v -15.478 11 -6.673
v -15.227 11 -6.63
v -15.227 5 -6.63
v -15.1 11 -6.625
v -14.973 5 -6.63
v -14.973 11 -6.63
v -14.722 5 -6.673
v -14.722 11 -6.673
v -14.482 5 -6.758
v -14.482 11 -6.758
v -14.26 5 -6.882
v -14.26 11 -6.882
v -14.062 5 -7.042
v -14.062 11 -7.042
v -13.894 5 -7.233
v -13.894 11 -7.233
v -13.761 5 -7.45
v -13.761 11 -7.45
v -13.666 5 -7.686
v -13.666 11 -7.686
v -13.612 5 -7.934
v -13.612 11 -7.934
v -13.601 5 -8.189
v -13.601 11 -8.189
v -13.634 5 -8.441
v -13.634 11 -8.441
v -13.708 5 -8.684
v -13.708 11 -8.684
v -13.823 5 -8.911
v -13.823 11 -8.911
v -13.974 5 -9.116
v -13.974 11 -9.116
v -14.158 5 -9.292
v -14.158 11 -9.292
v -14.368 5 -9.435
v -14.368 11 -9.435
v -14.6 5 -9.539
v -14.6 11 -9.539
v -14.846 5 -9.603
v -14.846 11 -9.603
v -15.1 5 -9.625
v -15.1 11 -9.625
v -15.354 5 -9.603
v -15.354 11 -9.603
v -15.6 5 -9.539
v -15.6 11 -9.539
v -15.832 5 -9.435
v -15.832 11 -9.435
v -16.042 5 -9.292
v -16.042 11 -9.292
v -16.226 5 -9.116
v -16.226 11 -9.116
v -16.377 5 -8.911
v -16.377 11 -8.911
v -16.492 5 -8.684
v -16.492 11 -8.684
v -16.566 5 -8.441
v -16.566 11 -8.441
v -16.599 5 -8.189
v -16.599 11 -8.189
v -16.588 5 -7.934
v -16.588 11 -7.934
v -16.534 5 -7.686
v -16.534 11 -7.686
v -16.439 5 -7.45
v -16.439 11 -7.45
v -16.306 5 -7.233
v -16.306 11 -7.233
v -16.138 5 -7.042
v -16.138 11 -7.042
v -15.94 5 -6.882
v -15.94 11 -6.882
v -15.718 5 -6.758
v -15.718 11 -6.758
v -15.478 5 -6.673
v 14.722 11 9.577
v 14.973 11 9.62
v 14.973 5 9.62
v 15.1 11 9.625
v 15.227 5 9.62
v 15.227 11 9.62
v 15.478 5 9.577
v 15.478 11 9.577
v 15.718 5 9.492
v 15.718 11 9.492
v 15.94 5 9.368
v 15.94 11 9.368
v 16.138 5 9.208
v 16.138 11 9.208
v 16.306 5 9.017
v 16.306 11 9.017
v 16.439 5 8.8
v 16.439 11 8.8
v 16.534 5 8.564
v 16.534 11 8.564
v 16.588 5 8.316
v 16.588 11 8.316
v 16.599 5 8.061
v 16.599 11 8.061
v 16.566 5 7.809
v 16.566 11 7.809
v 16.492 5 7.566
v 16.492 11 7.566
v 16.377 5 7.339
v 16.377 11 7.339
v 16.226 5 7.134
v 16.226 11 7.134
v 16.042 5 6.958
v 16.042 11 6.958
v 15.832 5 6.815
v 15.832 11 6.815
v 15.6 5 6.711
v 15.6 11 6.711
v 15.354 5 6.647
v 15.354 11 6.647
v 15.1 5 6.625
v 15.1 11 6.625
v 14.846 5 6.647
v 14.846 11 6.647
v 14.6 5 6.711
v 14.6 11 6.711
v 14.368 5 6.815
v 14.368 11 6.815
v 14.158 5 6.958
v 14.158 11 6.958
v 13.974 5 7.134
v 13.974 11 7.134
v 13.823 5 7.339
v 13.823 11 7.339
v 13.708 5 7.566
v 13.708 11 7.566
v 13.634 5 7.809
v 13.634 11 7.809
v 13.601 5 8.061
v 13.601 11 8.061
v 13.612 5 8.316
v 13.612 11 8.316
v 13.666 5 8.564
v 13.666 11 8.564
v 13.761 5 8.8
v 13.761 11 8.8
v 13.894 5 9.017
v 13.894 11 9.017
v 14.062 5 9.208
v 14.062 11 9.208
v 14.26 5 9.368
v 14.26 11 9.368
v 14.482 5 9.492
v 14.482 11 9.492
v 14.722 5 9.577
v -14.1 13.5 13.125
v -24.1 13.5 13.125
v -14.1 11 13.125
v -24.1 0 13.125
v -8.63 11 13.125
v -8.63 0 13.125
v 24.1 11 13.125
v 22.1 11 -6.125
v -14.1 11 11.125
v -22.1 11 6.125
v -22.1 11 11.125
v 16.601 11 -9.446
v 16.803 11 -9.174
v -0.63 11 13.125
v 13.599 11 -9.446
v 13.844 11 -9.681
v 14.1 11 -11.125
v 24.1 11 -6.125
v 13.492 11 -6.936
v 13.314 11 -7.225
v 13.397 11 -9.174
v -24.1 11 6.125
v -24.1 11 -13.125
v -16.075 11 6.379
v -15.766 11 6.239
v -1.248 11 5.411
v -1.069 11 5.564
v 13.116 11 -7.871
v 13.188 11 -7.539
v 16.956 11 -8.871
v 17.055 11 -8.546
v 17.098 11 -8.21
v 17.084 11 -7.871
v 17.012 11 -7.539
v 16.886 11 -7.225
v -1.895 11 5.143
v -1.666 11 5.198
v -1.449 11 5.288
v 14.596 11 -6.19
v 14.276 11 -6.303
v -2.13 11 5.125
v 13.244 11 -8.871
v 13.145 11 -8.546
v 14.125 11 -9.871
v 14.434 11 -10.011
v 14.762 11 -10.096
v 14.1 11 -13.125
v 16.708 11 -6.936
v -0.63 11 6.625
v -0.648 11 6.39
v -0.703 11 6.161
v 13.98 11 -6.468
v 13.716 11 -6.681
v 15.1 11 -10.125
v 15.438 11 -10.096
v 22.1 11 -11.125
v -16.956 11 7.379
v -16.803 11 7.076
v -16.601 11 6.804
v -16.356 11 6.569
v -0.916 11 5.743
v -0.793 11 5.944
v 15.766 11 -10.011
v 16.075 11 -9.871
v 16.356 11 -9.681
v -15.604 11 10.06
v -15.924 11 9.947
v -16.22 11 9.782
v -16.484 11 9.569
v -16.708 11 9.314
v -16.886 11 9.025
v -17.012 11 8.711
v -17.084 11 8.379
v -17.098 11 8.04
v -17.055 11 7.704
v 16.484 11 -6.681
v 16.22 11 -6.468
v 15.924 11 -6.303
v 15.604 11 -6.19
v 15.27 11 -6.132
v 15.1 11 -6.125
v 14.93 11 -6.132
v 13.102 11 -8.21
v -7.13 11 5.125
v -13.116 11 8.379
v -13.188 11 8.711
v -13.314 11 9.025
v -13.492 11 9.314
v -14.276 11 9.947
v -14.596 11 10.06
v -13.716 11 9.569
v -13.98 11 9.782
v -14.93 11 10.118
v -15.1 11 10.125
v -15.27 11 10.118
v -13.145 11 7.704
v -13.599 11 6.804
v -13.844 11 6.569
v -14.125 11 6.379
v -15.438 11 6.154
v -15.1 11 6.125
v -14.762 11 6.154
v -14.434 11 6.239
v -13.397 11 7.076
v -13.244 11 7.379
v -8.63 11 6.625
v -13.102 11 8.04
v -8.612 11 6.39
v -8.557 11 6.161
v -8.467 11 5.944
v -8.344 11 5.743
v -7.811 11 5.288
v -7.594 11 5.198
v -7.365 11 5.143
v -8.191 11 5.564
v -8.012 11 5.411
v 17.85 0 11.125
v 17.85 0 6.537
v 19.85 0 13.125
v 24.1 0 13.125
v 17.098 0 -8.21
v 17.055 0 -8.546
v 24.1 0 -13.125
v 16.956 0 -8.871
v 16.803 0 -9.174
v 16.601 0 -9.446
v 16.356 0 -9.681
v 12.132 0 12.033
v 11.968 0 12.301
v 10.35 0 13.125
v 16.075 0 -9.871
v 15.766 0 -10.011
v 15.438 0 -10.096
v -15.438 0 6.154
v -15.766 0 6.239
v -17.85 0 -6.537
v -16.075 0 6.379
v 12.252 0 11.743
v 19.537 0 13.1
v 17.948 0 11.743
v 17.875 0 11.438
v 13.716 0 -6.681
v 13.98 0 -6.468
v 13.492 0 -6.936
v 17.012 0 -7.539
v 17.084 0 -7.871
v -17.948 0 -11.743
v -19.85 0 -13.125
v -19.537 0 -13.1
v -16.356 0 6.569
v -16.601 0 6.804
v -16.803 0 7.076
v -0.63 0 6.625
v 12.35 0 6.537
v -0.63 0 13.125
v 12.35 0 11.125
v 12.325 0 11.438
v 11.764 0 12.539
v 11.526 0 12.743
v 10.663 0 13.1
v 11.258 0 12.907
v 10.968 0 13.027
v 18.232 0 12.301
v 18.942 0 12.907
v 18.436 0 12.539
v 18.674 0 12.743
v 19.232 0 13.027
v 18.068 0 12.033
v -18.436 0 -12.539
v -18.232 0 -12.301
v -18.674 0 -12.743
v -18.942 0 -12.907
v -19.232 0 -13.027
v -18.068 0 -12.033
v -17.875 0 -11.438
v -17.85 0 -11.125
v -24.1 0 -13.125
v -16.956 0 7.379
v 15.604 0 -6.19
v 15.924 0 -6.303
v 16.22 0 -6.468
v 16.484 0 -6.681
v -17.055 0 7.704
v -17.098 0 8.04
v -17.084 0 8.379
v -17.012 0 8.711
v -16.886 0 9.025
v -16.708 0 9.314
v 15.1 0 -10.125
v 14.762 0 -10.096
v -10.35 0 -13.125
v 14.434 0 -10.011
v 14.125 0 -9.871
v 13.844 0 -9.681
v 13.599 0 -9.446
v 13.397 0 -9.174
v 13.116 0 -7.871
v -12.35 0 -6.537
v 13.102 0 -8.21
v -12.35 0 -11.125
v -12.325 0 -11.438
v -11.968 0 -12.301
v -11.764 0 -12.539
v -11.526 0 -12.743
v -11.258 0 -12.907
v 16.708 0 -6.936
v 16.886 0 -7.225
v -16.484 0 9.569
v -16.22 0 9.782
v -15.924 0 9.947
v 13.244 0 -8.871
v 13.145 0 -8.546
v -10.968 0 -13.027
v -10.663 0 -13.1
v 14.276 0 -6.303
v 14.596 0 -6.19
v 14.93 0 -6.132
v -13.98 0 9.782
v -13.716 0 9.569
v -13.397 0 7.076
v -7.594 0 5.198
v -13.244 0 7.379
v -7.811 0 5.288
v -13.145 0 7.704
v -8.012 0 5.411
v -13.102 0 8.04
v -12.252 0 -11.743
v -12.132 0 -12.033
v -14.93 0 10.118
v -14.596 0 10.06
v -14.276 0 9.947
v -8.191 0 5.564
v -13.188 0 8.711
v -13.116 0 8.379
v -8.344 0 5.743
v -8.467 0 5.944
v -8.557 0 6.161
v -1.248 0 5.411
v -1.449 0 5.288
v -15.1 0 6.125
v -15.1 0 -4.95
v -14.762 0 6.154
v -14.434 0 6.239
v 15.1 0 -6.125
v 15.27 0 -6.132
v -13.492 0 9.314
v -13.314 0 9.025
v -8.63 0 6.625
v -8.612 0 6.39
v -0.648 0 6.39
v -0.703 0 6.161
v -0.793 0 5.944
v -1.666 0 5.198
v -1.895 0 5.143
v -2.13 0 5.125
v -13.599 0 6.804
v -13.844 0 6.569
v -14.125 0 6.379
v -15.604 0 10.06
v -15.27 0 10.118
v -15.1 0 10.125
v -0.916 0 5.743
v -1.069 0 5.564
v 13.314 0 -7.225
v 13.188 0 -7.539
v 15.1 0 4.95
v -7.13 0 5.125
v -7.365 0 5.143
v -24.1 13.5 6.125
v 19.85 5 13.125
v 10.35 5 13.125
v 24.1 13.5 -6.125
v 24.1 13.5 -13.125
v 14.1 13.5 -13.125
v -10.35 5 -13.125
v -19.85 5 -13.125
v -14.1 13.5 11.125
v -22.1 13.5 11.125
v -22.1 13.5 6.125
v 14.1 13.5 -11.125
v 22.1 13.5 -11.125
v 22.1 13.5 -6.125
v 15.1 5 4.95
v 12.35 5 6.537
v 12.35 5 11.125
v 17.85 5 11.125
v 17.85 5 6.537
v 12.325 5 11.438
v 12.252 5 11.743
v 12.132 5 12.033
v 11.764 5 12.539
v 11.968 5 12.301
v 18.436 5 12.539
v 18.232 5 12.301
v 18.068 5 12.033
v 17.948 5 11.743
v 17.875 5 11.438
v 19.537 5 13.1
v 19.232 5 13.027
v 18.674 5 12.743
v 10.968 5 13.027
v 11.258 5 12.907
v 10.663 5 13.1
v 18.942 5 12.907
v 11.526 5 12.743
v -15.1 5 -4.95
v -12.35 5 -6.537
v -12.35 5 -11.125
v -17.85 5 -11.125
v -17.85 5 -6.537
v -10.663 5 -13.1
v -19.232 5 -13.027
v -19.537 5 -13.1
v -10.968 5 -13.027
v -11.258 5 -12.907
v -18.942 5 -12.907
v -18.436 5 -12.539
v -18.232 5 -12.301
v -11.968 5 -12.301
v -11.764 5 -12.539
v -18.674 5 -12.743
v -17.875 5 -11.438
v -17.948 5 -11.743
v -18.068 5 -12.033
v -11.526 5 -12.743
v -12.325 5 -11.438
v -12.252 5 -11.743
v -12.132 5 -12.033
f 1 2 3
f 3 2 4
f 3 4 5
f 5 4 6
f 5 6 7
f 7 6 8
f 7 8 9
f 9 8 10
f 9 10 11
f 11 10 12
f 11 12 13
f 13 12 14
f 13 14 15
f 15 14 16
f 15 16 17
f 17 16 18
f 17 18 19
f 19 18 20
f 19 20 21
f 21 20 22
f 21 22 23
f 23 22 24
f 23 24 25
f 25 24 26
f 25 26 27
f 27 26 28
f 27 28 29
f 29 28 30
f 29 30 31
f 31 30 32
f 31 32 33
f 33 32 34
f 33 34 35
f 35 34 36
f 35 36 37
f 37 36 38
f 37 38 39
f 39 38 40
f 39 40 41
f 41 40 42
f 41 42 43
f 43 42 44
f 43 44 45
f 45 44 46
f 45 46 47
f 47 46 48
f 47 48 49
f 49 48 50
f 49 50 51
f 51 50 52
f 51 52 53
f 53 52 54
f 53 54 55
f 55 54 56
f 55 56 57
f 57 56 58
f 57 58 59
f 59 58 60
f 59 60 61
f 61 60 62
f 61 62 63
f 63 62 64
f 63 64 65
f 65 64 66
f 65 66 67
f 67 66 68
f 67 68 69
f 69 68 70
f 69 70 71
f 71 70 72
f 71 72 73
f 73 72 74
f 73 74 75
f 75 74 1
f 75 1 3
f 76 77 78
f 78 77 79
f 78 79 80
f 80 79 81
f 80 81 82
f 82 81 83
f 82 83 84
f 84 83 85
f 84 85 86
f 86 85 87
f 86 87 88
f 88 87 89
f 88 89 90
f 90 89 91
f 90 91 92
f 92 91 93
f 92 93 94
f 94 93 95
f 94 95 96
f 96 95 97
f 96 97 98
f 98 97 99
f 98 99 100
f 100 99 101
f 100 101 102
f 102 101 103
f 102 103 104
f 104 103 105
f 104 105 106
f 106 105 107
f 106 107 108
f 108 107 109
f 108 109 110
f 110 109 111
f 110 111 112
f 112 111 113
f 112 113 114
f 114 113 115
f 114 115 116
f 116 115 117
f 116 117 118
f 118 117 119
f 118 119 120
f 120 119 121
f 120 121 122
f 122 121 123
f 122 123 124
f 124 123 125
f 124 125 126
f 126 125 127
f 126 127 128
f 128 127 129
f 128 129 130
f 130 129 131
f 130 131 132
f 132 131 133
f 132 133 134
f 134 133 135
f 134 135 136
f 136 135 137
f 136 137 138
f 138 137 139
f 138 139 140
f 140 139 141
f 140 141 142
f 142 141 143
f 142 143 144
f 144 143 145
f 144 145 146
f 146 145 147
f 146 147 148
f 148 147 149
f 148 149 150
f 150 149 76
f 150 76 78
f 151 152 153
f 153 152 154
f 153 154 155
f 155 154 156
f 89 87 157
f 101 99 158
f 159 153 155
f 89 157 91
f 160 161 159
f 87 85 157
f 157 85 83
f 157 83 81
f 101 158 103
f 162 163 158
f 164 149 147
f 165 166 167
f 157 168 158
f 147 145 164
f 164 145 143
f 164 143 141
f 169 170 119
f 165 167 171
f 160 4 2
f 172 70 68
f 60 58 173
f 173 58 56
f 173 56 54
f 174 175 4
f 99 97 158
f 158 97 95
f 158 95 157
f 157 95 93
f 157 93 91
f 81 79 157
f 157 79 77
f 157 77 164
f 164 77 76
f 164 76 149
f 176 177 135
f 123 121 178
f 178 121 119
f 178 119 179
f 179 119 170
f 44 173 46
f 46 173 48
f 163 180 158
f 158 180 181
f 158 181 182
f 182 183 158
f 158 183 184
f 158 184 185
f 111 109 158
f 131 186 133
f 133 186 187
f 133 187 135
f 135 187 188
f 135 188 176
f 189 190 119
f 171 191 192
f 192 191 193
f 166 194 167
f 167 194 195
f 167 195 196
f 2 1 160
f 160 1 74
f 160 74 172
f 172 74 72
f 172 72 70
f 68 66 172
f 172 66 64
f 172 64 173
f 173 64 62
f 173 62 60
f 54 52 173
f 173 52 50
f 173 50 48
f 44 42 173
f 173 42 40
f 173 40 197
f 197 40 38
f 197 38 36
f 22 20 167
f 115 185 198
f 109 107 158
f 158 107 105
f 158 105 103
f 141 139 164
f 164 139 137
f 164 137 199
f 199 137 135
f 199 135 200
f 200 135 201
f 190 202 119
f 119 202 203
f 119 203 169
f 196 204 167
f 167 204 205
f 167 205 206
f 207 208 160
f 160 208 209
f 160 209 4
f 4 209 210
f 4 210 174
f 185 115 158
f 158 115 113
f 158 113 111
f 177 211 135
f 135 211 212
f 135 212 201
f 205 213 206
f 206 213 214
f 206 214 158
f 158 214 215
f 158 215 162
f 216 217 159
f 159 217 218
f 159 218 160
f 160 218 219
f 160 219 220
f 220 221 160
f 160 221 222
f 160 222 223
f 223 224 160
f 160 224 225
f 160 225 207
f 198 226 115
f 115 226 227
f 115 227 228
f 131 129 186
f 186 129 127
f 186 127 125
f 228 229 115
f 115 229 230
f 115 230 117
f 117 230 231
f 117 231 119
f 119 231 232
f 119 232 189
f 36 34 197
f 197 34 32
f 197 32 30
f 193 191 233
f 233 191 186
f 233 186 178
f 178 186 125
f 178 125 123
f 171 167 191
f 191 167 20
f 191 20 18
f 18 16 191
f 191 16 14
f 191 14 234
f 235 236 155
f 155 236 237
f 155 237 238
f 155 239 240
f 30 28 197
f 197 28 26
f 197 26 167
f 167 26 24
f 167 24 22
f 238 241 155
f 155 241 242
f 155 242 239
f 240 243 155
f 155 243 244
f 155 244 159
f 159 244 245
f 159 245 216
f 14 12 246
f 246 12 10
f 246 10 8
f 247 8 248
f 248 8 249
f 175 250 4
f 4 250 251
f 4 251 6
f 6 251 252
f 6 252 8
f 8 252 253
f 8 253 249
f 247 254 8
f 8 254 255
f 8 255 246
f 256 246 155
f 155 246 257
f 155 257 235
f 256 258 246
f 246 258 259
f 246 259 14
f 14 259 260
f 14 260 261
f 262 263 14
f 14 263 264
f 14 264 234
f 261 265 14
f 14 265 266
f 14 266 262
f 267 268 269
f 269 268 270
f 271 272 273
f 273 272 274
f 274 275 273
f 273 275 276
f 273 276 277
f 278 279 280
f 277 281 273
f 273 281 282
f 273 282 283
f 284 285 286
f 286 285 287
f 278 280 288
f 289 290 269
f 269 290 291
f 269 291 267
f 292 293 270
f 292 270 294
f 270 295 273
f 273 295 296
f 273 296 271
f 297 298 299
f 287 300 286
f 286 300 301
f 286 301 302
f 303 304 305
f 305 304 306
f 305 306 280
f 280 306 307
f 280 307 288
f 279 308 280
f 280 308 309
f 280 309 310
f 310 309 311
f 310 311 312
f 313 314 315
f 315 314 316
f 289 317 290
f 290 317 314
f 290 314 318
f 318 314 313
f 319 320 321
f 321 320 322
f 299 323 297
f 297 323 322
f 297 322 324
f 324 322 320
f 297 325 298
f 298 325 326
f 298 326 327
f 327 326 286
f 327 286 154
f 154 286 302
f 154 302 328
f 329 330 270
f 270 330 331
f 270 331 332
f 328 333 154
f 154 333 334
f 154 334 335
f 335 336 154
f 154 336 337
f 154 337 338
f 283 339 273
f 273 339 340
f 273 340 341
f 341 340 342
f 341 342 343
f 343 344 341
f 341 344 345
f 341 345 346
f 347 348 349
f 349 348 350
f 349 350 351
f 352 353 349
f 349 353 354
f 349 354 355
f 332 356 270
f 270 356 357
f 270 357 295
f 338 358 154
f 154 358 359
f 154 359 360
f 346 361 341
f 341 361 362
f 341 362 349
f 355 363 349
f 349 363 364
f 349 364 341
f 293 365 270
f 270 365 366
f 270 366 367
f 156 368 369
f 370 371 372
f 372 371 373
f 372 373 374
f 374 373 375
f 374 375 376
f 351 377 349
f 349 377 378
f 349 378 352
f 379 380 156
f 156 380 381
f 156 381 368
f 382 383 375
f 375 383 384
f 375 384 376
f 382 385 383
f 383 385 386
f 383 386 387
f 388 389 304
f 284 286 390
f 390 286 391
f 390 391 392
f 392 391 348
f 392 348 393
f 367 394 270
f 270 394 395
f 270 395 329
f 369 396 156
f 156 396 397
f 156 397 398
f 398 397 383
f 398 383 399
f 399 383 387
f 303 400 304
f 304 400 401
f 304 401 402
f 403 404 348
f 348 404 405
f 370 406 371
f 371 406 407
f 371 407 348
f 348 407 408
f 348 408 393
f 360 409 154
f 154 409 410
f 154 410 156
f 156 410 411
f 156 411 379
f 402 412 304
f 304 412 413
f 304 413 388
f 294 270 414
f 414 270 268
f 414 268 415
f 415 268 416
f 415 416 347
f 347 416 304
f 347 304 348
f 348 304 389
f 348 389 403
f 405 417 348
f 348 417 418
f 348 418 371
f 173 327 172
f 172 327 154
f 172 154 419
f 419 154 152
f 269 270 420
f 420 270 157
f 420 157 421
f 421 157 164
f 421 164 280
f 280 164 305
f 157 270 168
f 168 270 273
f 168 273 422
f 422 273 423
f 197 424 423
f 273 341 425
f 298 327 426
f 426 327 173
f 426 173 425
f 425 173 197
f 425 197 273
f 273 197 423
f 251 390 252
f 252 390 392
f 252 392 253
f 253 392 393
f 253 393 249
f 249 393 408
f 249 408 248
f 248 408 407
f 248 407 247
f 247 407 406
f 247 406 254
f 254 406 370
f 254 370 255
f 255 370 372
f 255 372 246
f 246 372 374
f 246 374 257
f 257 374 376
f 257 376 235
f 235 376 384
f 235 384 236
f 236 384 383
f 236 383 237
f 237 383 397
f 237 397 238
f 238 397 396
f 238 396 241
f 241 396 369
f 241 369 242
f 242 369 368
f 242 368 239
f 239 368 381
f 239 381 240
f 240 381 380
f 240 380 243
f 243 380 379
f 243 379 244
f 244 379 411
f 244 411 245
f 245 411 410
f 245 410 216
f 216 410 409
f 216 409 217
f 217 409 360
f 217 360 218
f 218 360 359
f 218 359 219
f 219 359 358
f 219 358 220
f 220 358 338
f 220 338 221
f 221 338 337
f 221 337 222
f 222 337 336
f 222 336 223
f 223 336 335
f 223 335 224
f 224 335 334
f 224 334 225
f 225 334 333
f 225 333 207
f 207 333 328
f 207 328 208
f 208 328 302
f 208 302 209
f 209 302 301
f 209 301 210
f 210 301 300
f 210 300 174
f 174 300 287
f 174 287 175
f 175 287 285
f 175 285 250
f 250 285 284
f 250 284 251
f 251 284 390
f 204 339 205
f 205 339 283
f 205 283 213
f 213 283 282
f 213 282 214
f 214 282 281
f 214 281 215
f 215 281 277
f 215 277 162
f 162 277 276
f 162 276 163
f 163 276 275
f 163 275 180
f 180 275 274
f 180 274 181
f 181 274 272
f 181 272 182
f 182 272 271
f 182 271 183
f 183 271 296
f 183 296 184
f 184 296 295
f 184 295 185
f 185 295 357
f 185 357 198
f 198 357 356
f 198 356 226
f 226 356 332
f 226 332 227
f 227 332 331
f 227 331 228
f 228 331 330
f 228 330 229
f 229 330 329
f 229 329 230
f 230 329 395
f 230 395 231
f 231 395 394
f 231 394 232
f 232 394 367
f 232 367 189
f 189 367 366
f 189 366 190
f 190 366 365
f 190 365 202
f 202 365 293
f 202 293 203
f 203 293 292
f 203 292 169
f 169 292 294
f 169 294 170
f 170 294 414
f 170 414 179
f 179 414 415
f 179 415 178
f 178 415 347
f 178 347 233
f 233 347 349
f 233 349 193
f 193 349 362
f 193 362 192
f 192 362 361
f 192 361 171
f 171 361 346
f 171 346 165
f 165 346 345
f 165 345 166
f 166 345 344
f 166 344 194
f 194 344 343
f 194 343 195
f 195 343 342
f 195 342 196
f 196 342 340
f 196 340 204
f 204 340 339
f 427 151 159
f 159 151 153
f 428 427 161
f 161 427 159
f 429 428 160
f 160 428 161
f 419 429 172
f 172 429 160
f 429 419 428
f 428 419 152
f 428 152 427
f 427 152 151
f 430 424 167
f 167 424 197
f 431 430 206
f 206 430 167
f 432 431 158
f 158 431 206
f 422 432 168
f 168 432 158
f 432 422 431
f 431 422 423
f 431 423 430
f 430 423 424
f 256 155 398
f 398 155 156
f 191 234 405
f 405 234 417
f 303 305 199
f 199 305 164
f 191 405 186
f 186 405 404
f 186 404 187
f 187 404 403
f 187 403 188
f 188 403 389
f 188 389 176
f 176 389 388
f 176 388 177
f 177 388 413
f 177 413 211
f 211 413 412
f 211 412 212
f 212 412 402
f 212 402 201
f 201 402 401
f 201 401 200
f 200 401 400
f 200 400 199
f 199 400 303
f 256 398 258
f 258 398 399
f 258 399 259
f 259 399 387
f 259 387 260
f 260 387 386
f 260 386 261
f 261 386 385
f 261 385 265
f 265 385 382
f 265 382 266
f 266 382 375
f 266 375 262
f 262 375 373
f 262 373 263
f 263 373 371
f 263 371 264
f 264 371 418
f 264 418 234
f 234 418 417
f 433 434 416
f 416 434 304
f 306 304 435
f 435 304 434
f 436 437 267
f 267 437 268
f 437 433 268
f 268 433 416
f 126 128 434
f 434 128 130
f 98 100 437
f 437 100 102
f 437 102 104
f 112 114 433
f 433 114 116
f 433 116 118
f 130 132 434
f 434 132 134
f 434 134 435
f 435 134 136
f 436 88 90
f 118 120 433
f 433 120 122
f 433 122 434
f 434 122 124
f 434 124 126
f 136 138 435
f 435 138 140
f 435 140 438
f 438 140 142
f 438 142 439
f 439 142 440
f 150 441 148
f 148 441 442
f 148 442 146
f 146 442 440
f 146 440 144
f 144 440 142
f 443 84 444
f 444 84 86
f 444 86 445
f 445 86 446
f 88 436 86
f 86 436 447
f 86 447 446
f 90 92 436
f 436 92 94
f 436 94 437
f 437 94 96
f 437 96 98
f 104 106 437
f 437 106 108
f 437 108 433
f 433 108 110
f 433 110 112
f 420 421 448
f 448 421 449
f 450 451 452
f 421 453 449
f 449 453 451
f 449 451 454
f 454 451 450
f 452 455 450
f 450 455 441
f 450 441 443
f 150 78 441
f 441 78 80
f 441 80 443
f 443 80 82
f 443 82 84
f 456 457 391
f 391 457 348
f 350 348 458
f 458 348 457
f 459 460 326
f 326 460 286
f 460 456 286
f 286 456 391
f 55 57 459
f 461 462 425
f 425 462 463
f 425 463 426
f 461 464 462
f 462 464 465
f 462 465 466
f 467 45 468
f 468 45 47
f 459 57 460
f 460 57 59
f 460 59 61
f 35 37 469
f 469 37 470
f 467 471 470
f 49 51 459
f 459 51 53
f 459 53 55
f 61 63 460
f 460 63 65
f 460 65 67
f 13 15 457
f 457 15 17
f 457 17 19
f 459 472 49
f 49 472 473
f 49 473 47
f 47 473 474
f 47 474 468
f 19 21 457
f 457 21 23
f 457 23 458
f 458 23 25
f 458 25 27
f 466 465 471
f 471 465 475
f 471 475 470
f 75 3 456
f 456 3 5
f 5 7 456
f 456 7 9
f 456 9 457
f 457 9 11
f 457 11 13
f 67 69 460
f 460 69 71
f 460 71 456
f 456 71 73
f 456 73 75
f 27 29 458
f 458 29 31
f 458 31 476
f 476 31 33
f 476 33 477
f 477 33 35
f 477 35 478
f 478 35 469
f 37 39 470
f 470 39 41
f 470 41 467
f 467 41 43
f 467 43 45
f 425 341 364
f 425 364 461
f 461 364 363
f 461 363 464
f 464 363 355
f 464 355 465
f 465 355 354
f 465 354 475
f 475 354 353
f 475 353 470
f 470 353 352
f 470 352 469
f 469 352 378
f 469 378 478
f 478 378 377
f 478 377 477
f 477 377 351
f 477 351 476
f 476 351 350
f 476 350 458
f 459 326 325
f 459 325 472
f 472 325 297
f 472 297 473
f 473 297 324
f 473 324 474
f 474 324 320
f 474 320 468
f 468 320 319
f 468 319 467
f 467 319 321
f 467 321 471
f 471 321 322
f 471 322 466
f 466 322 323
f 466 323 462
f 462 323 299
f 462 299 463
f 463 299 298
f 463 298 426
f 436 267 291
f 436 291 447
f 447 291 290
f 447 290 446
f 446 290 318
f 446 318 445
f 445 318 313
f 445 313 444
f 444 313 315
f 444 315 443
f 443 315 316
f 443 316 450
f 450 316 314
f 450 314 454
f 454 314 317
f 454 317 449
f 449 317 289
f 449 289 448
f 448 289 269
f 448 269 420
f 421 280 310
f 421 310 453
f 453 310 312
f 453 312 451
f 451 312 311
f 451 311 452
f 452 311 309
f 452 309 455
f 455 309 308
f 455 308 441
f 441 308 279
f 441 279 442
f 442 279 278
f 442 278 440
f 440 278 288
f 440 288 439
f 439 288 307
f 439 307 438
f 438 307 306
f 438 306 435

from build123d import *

# Parameters (mm, degrees)
SKETCH1_W           = 48.2
SKETCH1_H           = 26.25
SKETCH1_R           = 1.5
SKETCH1_R_2         = 2
BOSS_EXTRUDE1_DEPTH = 11
BOSS_EXTRUDE2_DEPTH = 2.5
SKETCH3_W           = 8
SKETCH3_H           = 8
CUT_EXTRUDE1_DEPTH  = 30.564769997
FILLET1_R           = 1.5
CUT_EXTRUDE2_DEPTH  = 5
FILLET2_R           = 2


with BuildPart() as part:
    # Sketch1 → Boss-Extrude1 (new body)
    with BuildSketch(Plane(origin=(0, 0, 0), x_dir=(1, 0, 0), z_dir=(0, 1, 0))):
        Rectangle(SKETCH1_W, SKETCH1_H)
        with Locations(Location((-15.1, 8.125, 0), (0, 0, 270))):
            Circle(SKETCH1_R, mode=Mode.SUBTRACT)
        with Locations(Location((15.1, -8.125, 0), (0, 0, 270))):
            Circle(SKETCH1_R, mode=Mode.SUBTRACT)
        with Locations(Location((-15.1, -8.125, 0), (0, 0, 270))):
            Circle(SKETCH1_R_2, mode=Mode.SUBTRACT)
        with Locations(Location((15.1, 8.125, 0), (0, 0, 270))):
            Circle(SKETCH1_R_2, mode=Mode.SUBTRACT)
    extrude(amount=BOSS_EXTRUDE1_DEPTH)

    # Sketch2 → Boss-Extrude2 (add)
    with BuildSketch(Plane(origin=(0, 11, 0), x_dir=(1, 0, 0), z_dir=(0, 1, 0))):
        Polygon((-24.1, -6.125), (-22.1, -6.125), (-22.1, -11.125), (-14.1, -11.125), (-14.1, -13.125), (-24.1, -13.125), align=None)
        Polygon((14.1, 13.125), (14.1, 11.125), (22.1, 11.125), (22.1, 6.125), (24.1, 6.125), (24.1, 13.125), align=None)
    extrude(amount=BOSS_EXTRUDE2_DEPTH)

    # Sketch3 → Cut-Extrude1 (cut, through all)
    with BuildSketch(Plane(origin=(0, 11, 0), x_dir=(1, 0, 0), z_dir=(0, 1, 0))):
        with Locations((-4.63, -9.125)):
            Rectangle(SKETCH3_W, SKETCH3_H)
    extrude(amount=-CUT_EXTRUDE1_DEPTH, mode=Mode.SUBTRACT)

    # Fillet1
    fillet1_edges = [part.edges().sort_by_distance(p)[0] for p in [
        (-8.63, 5.5, 5.125),
        (-0.63, 5.5, 5.125),
    ]]
    fillet(fillet1_edges, radius=FILLET1_R)

    # Sketch5 → Cut-Extrude2 (cut)
    with BuildSketch(Plane.XZ):
        Polygon((-17.85, -9.71271324), (-17.85, -13.125), (-12.35, -13.125), (-12.35, -9.71271324), (-12.35, -6.53728676), (-15.1, -4.949573519), (-17.85, -6.53728676), align=None)
        Polygon((15.1, 4.949573519), (17.85, 6.53728676), (17.85, 9.71271324), (17.85, 13.125), (12.35, 13.125), (12.35, 9.71271324), (12.35, 6.53728676), align=None)
    extrude(amount=-CUT_EXTRUDE2_DEPTH, mode=Mode.SUBTRACT)

    # Fillet2
    fillet2_edges = [part.edges().sort_by_distance(p)[0] for p in [
        (-12.35, 2.5, -13.125),
        (-17.85, 2.5, -13.125),
        (12.35, 2.5, 13.125),
        (17.85, 2.5, 13.125),
    ]]
    fillet(fillet2_edges, radius=FILLET2_R)


solid = part.part
